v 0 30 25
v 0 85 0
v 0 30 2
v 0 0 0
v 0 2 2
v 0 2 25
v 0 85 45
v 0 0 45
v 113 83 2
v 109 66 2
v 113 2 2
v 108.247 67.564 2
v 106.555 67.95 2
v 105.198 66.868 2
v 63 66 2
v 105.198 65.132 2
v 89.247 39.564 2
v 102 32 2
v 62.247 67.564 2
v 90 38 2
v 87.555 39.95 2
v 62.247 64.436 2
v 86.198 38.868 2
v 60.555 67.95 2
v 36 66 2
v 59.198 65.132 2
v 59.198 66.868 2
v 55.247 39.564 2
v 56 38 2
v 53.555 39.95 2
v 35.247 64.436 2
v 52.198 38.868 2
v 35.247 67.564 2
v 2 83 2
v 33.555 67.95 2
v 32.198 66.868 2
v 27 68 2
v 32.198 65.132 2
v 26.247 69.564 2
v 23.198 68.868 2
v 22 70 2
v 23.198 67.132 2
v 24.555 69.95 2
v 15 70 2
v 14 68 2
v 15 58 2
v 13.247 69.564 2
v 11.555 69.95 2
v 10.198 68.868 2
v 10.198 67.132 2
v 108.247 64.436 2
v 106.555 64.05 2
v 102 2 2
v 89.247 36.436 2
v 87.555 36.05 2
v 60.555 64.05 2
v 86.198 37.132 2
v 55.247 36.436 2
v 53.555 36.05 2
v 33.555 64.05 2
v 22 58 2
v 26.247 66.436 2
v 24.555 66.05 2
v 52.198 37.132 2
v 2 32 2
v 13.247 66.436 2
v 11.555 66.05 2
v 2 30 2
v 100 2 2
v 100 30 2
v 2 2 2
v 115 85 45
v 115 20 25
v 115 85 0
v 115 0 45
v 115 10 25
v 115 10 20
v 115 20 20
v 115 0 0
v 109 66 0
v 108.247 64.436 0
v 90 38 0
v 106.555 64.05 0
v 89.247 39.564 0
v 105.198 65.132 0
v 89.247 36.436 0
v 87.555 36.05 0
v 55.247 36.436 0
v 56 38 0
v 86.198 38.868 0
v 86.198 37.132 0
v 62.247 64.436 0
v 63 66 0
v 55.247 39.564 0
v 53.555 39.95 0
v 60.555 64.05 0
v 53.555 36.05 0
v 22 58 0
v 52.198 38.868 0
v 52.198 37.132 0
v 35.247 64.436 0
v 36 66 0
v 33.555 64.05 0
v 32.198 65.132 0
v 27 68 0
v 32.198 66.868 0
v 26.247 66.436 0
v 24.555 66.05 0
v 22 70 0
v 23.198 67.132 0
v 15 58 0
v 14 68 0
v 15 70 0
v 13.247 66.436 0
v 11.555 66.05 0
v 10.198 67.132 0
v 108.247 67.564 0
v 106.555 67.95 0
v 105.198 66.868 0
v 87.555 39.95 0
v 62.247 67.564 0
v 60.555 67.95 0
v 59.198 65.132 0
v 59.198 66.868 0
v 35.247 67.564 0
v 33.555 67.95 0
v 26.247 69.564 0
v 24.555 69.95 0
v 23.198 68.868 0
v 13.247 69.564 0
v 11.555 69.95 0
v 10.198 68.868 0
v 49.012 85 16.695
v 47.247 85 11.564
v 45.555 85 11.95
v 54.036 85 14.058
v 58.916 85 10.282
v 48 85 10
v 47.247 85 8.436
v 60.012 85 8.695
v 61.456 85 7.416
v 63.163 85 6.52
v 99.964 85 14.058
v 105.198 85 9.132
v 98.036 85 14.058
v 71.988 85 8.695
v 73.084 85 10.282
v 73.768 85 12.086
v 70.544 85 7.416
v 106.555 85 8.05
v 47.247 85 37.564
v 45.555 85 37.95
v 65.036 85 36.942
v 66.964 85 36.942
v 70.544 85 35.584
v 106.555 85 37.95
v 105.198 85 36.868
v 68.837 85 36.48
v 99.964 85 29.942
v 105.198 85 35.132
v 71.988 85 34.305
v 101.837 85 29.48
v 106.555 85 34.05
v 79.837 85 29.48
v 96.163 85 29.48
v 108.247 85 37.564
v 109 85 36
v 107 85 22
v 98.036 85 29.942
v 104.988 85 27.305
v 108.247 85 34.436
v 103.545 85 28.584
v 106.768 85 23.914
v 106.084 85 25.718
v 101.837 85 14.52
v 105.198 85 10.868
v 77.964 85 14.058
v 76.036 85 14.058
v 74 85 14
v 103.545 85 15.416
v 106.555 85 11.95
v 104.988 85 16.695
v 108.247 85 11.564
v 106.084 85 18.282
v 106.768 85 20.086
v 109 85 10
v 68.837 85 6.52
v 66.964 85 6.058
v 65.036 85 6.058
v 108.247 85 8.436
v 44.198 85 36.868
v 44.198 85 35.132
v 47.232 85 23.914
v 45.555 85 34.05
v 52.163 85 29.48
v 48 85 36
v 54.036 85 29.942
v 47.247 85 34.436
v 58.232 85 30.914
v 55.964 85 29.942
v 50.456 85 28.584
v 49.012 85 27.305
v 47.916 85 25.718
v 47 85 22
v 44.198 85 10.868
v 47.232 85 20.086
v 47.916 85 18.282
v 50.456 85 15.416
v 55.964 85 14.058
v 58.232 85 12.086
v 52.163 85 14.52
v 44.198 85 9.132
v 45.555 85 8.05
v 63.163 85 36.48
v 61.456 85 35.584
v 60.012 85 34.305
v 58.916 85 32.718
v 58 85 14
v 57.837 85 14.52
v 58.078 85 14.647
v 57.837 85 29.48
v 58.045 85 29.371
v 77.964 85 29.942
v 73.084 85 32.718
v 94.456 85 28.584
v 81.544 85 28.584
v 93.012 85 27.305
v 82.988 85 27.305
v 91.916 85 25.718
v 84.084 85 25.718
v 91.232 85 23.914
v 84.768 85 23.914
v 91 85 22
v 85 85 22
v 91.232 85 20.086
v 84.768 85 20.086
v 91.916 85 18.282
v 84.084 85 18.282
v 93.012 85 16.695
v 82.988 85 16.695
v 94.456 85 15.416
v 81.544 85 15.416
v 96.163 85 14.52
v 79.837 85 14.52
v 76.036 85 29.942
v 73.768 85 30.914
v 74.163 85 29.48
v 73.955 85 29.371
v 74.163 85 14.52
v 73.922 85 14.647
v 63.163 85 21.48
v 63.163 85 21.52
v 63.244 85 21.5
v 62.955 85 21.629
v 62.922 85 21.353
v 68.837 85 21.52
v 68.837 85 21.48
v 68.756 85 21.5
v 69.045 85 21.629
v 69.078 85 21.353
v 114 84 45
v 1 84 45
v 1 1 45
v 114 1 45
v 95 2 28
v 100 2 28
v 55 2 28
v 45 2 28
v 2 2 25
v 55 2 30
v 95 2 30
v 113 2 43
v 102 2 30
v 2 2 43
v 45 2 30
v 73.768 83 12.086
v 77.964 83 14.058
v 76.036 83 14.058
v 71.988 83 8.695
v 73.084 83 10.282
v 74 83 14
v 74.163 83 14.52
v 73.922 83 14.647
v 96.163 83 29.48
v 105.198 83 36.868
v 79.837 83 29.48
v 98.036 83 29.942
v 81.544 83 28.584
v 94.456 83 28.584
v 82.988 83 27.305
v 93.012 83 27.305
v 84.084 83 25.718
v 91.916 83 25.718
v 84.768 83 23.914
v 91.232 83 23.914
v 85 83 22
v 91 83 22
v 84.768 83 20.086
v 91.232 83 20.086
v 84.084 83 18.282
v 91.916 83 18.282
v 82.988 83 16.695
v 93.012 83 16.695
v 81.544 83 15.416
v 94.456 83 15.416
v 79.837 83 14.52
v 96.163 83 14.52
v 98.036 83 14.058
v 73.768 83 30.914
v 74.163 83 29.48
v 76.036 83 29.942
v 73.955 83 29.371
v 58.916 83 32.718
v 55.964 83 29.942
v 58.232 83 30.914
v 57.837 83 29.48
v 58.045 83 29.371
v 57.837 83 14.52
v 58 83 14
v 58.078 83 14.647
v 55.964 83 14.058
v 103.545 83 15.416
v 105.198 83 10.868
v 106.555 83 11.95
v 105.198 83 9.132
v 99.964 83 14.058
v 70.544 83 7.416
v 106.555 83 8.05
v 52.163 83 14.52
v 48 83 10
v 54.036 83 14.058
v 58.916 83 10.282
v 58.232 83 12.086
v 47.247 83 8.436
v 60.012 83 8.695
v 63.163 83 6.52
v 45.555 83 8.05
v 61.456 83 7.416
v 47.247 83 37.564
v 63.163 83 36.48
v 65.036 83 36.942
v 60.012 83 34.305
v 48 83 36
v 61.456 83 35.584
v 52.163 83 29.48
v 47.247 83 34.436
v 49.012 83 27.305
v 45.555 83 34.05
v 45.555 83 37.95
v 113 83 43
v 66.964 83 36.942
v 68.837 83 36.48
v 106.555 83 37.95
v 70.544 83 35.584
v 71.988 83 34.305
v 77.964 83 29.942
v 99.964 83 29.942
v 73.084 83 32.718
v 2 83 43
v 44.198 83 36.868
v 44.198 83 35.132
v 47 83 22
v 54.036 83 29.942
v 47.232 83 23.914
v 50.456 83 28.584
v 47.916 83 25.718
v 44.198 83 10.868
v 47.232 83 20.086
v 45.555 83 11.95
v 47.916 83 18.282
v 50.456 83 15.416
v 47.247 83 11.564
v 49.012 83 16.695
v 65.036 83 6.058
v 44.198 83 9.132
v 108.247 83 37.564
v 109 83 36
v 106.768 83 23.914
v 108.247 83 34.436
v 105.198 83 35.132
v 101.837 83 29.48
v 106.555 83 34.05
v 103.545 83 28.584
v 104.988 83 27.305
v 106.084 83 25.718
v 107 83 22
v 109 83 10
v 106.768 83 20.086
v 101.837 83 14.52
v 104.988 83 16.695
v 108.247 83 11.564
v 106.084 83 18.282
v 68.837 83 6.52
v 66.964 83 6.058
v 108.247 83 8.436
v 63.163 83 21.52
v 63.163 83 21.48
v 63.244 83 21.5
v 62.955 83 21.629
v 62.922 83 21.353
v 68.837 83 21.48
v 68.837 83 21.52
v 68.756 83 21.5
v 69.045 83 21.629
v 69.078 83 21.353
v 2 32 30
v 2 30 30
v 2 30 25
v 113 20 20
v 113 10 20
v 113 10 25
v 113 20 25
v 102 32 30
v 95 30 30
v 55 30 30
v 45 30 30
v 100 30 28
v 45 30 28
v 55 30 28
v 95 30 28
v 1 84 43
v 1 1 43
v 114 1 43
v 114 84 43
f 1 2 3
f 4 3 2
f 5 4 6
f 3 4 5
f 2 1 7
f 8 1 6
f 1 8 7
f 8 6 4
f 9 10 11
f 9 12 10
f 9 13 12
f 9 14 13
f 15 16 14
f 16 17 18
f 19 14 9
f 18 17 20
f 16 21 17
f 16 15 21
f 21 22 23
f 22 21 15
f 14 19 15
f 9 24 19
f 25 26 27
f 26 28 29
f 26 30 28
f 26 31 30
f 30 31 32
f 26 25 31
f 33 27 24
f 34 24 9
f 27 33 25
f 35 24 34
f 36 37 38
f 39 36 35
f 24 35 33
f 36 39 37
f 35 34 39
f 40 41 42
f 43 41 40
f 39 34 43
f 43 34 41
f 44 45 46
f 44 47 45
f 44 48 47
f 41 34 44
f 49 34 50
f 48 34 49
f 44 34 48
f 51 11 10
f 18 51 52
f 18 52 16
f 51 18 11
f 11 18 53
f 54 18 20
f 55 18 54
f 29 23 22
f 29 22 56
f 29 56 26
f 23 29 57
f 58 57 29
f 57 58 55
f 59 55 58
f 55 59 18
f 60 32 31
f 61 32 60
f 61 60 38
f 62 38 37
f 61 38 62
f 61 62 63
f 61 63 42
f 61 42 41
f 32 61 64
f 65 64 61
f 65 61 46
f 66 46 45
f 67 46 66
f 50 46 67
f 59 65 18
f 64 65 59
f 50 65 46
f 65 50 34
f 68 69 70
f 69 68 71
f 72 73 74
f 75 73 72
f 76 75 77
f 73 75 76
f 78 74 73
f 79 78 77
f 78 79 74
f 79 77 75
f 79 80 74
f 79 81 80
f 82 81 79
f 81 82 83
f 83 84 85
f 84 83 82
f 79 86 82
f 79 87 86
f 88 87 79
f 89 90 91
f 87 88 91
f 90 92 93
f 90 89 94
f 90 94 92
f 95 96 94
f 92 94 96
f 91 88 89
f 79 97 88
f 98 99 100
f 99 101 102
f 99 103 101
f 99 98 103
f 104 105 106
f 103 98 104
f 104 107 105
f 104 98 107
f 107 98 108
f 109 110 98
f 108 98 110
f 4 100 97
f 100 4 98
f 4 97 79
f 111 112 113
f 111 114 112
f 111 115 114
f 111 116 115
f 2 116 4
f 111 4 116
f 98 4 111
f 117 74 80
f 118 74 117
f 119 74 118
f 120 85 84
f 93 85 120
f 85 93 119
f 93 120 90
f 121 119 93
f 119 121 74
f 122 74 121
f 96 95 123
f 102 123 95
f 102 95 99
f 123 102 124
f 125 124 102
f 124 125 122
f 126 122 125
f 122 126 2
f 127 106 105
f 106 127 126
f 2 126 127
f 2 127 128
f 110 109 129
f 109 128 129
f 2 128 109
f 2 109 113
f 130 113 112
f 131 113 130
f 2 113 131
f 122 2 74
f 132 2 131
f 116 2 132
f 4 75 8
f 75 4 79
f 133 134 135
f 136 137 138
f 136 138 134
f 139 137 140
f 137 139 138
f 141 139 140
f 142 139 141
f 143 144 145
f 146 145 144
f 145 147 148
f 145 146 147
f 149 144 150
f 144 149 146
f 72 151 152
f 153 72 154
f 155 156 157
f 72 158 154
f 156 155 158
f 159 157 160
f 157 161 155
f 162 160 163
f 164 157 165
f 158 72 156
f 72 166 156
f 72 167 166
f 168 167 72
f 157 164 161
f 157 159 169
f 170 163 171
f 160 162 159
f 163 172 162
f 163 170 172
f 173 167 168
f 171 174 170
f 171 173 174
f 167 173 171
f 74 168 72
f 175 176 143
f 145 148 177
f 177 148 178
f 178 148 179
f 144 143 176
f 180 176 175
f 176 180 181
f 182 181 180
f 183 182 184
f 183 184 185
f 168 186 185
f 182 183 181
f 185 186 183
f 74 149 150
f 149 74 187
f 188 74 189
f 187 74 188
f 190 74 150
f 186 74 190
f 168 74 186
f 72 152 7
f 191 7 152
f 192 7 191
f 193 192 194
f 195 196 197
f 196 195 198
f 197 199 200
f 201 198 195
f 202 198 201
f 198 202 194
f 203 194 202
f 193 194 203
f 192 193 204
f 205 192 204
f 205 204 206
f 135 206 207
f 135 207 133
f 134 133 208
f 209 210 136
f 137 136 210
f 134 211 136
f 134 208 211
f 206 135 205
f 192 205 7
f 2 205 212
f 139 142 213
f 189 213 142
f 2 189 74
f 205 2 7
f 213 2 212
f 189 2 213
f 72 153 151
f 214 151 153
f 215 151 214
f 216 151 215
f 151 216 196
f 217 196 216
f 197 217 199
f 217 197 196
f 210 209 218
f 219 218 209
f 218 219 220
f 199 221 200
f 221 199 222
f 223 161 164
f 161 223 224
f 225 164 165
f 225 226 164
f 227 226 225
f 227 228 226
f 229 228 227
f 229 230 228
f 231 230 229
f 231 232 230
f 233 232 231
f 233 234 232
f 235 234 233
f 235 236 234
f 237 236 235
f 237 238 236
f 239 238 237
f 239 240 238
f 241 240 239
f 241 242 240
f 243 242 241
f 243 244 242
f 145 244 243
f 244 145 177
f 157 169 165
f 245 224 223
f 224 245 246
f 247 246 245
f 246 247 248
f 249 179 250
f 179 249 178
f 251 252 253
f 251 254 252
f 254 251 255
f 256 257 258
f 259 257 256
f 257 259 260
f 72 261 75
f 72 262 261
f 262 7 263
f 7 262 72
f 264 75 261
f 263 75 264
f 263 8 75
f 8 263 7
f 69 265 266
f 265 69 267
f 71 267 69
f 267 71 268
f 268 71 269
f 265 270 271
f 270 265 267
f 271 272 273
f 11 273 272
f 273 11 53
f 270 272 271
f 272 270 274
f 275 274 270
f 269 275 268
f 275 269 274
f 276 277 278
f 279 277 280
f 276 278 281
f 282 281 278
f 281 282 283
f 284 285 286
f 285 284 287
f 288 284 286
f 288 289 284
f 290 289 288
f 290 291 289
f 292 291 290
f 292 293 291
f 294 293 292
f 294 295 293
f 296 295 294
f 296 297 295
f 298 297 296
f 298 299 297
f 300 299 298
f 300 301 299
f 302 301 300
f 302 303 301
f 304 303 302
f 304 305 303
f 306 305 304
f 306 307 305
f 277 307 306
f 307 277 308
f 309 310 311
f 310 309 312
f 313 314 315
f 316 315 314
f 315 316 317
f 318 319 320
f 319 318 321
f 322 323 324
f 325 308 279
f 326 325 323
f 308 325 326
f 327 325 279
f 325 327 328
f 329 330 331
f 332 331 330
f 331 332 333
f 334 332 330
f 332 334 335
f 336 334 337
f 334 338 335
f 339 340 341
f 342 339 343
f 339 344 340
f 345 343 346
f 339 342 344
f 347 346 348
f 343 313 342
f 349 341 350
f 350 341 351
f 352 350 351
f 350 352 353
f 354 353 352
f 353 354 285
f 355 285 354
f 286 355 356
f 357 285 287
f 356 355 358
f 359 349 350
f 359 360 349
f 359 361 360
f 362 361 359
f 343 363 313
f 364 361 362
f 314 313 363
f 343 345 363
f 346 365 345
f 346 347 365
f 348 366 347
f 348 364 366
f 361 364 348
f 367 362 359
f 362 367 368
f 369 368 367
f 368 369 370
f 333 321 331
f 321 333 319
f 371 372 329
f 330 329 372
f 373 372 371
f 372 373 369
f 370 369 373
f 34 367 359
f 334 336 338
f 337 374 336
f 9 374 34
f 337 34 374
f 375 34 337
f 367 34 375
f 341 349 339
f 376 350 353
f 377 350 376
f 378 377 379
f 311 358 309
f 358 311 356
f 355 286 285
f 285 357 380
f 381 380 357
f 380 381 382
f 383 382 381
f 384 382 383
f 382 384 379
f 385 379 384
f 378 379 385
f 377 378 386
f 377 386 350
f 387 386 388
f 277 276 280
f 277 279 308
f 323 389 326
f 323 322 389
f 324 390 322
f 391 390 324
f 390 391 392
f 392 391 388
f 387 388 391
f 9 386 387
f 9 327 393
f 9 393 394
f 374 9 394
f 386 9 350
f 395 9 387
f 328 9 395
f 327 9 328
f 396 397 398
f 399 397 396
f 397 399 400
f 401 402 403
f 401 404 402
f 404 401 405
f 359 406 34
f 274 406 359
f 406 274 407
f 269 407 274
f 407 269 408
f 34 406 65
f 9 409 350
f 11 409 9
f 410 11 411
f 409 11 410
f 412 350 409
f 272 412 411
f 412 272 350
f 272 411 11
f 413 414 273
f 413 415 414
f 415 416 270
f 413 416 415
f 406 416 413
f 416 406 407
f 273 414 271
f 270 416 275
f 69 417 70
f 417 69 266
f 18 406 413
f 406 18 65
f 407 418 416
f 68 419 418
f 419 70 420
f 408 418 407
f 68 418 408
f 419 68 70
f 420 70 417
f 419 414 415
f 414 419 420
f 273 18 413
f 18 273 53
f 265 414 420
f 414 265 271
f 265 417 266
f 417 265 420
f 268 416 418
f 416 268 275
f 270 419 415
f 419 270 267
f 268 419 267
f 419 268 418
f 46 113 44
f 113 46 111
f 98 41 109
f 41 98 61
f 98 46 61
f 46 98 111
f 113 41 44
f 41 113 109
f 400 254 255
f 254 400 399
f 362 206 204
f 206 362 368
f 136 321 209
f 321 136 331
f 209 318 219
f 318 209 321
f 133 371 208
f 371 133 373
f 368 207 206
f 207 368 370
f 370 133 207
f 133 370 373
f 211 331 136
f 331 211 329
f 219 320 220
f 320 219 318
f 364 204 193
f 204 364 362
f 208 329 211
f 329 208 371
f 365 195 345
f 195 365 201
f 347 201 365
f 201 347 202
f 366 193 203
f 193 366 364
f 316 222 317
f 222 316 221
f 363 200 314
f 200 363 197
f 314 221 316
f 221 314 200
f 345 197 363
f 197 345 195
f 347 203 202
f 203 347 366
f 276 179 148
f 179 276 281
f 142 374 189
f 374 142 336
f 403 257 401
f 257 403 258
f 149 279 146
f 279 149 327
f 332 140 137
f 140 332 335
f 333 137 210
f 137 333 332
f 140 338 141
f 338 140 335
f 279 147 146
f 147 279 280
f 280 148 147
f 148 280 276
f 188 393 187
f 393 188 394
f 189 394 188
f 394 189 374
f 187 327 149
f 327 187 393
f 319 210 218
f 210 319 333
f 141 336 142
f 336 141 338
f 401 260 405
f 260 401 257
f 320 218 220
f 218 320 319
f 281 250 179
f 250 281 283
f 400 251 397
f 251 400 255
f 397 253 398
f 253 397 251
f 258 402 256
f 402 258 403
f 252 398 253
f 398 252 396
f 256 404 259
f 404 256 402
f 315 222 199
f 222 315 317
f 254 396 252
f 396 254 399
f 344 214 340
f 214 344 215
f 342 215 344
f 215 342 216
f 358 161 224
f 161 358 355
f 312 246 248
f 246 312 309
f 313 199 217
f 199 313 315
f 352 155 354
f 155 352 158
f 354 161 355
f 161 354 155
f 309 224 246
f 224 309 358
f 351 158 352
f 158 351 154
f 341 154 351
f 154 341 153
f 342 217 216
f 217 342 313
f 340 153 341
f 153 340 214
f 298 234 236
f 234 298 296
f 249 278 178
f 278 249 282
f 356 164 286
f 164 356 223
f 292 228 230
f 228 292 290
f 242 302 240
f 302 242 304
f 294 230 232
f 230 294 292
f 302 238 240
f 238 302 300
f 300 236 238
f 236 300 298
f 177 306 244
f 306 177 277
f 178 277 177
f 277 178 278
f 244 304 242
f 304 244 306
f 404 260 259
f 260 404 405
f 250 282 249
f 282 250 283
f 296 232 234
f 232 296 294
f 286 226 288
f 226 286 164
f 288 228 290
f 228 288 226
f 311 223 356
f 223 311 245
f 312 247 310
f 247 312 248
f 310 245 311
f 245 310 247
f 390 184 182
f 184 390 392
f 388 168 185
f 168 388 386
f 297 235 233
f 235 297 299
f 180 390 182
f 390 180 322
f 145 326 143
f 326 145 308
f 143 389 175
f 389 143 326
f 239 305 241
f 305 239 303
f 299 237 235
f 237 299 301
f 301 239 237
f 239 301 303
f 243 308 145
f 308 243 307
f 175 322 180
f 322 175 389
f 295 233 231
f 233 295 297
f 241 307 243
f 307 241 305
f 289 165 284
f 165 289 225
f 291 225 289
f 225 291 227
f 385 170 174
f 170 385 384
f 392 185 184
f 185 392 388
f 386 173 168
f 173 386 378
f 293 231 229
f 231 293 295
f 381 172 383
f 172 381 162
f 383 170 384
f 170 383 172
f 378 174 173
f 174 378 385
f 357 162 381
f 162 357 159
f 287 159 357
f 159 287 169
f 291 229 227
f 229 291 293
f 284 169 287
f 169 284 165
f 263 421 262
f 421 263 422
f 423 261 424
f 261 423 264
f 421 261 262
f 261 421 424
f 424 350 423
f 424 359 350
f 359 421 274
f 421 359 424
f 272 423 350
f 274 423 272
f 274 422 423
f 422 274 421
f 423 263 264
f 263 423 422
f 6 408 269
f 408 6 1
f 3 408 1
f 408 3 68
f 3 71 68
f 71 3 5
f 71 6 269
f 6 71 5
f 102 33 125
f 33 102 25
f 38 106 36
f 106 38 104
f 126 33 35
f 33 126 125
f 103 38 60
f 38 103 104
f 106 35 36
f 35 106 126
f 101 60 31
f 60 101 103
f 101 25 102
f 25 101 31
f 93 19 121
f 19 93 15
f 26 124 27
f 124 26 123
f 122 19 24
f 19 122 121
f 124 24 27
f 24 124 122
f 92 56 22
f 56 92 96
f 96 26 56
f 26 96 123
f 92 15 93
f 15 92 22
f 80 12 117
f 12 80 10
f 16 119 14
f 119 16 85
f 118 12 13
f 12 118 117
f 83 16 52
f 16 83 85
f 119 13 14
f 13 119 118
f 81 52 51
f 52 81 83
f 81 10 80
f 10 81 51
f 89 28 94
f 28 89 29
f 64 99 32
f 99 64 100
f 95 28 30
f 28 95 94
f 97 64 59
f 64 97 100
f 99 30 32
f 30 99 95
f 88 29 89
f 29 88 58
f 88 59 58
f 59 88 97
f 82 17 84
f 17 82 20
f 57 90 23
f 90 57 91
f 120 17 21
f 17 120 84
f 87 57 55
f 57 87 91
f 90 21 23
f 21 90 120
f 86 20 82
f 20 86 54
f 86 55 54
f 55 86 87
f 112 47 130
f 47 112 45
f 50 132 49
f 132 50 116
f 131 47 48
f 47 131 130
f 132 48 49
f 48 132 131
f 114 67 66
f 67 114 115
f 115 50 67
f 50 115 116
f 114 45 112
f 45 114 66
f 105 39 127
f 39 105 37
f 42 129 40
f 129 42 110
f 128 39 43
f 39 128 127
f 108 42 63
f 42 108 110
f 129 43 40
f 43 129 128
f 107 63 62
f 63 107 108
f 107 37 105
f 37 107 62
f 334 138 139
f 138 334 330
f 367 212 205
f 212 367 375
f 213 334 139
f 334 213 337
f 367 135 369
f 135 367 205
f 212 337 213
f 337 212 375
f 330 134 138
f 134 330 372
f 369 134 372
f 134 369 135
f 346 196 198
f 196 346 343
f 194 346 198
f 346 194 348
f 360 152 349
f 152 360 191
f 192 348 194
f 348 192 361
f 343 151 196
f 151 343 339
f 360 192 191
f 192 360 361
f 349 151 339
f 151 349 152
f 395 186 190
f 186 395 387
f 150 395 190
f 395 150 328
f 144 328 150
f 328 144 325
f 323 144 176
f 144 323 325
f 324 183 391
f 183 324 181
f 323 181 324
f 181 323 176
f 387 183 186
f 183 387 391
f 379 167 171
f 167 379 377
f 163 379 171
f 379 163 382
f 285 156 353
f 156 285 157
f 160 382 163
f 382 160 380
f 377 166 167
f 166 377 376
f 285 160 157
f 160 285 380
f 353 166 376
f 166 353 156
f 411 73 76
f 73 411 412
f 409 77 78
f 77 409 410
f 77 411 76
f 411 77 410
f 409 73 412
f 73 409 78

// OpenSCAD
rboton1=8;
rtriple=2;
rcam=2;
rjoys=2;
difference(){
union(){
    cube ([115,85,2]);
    cube ([115,2,45]);
    translate([0,83,0]) cube ([115,2,45]);
    cube ([2,85,45]);
    translate([113,0,0]) cube ([2,85,45]);
    translate([0,30,0]) cube ([100,2,30]);
    translate([100,0,0]) cube ([2,32,30]);    
    translate([95,0,28]) cube ([5,32,2]);
    translate([45,0,28]) cube ([10,32,2]);
}
union(){
    translate([15,58,0]) cube([7,12,2]);
    translate([55,83,22]) rotate([-90,0,0]) cylinder(r=rboton1, h=2);
    translate([66,83,14]) rotate([-90,0,0]) cylinder(r=rboton1, h=2);
    translate([66,83,29]) rotate([-90,0,0]) cylinder(r=rboton1, h=2);
    translate([77,83,22]) rotate([-90,0,0]) cylinder(r=rboton1, h=2);
    translate([99,83,22]) rotate([-90,0,0]) cylinder(r=rboton1, h=2);
    translate([1,1,43]) cube([113,83,2]);    
    translate([0,2,2]) cube([2,28,23]);
    translate([34,66,0]) cylinder(r=rtriple, h=2);
//    translate([54,66,0]) cylinder(r=rtriple, h=2);
    translate([61,66,0]) cylinder(r=rtriple, h=2);
//    translate([80,66,0]) cylinder(r=rtriple, h=2);
//    translate([88,66,0]) cylinder(r=rtriple, h=2);
    translate([107,66,0]) cylinder(r=rtriple, h=2);
//    translate([34,38,0]) cylinder(r=rtriple, h=2);
    translate([54,38,0]) cylinder(r=rtriple, h=2);
//    translate([61,38,0]) cylinder(r=rtriple, h=2);
//    translate([80,38,0]) cylinder(r=rtriple, h=2);
    translate([88,38,0]) cylinder(r=rtriple, h=2);
//    translate([107,38,0]) cylinder(r=rtriple, h=2);
    translate([12,68,0]) cylinder(r=rcam, h=2);
    translate([25,68,0]) cylinder(r=rcam, h=2);
    translate([46,83,10]) rotate([-90,0,0])  cylinder(r=rjoys, h=2);
    translate([46,83,36]) rotate([-90,0,0])  cylinder(r=rjoys, h=2);
    translate([107,83,10]) rotate([-90,0,0])  cylinder(r=rjoys, h=2);
    translate([107,83,36]) rotate([-90,0,0])  cylinder(r=rjoys, h=2);
    translate([113,10,20]) cube([2,10,5]);    
}
}
